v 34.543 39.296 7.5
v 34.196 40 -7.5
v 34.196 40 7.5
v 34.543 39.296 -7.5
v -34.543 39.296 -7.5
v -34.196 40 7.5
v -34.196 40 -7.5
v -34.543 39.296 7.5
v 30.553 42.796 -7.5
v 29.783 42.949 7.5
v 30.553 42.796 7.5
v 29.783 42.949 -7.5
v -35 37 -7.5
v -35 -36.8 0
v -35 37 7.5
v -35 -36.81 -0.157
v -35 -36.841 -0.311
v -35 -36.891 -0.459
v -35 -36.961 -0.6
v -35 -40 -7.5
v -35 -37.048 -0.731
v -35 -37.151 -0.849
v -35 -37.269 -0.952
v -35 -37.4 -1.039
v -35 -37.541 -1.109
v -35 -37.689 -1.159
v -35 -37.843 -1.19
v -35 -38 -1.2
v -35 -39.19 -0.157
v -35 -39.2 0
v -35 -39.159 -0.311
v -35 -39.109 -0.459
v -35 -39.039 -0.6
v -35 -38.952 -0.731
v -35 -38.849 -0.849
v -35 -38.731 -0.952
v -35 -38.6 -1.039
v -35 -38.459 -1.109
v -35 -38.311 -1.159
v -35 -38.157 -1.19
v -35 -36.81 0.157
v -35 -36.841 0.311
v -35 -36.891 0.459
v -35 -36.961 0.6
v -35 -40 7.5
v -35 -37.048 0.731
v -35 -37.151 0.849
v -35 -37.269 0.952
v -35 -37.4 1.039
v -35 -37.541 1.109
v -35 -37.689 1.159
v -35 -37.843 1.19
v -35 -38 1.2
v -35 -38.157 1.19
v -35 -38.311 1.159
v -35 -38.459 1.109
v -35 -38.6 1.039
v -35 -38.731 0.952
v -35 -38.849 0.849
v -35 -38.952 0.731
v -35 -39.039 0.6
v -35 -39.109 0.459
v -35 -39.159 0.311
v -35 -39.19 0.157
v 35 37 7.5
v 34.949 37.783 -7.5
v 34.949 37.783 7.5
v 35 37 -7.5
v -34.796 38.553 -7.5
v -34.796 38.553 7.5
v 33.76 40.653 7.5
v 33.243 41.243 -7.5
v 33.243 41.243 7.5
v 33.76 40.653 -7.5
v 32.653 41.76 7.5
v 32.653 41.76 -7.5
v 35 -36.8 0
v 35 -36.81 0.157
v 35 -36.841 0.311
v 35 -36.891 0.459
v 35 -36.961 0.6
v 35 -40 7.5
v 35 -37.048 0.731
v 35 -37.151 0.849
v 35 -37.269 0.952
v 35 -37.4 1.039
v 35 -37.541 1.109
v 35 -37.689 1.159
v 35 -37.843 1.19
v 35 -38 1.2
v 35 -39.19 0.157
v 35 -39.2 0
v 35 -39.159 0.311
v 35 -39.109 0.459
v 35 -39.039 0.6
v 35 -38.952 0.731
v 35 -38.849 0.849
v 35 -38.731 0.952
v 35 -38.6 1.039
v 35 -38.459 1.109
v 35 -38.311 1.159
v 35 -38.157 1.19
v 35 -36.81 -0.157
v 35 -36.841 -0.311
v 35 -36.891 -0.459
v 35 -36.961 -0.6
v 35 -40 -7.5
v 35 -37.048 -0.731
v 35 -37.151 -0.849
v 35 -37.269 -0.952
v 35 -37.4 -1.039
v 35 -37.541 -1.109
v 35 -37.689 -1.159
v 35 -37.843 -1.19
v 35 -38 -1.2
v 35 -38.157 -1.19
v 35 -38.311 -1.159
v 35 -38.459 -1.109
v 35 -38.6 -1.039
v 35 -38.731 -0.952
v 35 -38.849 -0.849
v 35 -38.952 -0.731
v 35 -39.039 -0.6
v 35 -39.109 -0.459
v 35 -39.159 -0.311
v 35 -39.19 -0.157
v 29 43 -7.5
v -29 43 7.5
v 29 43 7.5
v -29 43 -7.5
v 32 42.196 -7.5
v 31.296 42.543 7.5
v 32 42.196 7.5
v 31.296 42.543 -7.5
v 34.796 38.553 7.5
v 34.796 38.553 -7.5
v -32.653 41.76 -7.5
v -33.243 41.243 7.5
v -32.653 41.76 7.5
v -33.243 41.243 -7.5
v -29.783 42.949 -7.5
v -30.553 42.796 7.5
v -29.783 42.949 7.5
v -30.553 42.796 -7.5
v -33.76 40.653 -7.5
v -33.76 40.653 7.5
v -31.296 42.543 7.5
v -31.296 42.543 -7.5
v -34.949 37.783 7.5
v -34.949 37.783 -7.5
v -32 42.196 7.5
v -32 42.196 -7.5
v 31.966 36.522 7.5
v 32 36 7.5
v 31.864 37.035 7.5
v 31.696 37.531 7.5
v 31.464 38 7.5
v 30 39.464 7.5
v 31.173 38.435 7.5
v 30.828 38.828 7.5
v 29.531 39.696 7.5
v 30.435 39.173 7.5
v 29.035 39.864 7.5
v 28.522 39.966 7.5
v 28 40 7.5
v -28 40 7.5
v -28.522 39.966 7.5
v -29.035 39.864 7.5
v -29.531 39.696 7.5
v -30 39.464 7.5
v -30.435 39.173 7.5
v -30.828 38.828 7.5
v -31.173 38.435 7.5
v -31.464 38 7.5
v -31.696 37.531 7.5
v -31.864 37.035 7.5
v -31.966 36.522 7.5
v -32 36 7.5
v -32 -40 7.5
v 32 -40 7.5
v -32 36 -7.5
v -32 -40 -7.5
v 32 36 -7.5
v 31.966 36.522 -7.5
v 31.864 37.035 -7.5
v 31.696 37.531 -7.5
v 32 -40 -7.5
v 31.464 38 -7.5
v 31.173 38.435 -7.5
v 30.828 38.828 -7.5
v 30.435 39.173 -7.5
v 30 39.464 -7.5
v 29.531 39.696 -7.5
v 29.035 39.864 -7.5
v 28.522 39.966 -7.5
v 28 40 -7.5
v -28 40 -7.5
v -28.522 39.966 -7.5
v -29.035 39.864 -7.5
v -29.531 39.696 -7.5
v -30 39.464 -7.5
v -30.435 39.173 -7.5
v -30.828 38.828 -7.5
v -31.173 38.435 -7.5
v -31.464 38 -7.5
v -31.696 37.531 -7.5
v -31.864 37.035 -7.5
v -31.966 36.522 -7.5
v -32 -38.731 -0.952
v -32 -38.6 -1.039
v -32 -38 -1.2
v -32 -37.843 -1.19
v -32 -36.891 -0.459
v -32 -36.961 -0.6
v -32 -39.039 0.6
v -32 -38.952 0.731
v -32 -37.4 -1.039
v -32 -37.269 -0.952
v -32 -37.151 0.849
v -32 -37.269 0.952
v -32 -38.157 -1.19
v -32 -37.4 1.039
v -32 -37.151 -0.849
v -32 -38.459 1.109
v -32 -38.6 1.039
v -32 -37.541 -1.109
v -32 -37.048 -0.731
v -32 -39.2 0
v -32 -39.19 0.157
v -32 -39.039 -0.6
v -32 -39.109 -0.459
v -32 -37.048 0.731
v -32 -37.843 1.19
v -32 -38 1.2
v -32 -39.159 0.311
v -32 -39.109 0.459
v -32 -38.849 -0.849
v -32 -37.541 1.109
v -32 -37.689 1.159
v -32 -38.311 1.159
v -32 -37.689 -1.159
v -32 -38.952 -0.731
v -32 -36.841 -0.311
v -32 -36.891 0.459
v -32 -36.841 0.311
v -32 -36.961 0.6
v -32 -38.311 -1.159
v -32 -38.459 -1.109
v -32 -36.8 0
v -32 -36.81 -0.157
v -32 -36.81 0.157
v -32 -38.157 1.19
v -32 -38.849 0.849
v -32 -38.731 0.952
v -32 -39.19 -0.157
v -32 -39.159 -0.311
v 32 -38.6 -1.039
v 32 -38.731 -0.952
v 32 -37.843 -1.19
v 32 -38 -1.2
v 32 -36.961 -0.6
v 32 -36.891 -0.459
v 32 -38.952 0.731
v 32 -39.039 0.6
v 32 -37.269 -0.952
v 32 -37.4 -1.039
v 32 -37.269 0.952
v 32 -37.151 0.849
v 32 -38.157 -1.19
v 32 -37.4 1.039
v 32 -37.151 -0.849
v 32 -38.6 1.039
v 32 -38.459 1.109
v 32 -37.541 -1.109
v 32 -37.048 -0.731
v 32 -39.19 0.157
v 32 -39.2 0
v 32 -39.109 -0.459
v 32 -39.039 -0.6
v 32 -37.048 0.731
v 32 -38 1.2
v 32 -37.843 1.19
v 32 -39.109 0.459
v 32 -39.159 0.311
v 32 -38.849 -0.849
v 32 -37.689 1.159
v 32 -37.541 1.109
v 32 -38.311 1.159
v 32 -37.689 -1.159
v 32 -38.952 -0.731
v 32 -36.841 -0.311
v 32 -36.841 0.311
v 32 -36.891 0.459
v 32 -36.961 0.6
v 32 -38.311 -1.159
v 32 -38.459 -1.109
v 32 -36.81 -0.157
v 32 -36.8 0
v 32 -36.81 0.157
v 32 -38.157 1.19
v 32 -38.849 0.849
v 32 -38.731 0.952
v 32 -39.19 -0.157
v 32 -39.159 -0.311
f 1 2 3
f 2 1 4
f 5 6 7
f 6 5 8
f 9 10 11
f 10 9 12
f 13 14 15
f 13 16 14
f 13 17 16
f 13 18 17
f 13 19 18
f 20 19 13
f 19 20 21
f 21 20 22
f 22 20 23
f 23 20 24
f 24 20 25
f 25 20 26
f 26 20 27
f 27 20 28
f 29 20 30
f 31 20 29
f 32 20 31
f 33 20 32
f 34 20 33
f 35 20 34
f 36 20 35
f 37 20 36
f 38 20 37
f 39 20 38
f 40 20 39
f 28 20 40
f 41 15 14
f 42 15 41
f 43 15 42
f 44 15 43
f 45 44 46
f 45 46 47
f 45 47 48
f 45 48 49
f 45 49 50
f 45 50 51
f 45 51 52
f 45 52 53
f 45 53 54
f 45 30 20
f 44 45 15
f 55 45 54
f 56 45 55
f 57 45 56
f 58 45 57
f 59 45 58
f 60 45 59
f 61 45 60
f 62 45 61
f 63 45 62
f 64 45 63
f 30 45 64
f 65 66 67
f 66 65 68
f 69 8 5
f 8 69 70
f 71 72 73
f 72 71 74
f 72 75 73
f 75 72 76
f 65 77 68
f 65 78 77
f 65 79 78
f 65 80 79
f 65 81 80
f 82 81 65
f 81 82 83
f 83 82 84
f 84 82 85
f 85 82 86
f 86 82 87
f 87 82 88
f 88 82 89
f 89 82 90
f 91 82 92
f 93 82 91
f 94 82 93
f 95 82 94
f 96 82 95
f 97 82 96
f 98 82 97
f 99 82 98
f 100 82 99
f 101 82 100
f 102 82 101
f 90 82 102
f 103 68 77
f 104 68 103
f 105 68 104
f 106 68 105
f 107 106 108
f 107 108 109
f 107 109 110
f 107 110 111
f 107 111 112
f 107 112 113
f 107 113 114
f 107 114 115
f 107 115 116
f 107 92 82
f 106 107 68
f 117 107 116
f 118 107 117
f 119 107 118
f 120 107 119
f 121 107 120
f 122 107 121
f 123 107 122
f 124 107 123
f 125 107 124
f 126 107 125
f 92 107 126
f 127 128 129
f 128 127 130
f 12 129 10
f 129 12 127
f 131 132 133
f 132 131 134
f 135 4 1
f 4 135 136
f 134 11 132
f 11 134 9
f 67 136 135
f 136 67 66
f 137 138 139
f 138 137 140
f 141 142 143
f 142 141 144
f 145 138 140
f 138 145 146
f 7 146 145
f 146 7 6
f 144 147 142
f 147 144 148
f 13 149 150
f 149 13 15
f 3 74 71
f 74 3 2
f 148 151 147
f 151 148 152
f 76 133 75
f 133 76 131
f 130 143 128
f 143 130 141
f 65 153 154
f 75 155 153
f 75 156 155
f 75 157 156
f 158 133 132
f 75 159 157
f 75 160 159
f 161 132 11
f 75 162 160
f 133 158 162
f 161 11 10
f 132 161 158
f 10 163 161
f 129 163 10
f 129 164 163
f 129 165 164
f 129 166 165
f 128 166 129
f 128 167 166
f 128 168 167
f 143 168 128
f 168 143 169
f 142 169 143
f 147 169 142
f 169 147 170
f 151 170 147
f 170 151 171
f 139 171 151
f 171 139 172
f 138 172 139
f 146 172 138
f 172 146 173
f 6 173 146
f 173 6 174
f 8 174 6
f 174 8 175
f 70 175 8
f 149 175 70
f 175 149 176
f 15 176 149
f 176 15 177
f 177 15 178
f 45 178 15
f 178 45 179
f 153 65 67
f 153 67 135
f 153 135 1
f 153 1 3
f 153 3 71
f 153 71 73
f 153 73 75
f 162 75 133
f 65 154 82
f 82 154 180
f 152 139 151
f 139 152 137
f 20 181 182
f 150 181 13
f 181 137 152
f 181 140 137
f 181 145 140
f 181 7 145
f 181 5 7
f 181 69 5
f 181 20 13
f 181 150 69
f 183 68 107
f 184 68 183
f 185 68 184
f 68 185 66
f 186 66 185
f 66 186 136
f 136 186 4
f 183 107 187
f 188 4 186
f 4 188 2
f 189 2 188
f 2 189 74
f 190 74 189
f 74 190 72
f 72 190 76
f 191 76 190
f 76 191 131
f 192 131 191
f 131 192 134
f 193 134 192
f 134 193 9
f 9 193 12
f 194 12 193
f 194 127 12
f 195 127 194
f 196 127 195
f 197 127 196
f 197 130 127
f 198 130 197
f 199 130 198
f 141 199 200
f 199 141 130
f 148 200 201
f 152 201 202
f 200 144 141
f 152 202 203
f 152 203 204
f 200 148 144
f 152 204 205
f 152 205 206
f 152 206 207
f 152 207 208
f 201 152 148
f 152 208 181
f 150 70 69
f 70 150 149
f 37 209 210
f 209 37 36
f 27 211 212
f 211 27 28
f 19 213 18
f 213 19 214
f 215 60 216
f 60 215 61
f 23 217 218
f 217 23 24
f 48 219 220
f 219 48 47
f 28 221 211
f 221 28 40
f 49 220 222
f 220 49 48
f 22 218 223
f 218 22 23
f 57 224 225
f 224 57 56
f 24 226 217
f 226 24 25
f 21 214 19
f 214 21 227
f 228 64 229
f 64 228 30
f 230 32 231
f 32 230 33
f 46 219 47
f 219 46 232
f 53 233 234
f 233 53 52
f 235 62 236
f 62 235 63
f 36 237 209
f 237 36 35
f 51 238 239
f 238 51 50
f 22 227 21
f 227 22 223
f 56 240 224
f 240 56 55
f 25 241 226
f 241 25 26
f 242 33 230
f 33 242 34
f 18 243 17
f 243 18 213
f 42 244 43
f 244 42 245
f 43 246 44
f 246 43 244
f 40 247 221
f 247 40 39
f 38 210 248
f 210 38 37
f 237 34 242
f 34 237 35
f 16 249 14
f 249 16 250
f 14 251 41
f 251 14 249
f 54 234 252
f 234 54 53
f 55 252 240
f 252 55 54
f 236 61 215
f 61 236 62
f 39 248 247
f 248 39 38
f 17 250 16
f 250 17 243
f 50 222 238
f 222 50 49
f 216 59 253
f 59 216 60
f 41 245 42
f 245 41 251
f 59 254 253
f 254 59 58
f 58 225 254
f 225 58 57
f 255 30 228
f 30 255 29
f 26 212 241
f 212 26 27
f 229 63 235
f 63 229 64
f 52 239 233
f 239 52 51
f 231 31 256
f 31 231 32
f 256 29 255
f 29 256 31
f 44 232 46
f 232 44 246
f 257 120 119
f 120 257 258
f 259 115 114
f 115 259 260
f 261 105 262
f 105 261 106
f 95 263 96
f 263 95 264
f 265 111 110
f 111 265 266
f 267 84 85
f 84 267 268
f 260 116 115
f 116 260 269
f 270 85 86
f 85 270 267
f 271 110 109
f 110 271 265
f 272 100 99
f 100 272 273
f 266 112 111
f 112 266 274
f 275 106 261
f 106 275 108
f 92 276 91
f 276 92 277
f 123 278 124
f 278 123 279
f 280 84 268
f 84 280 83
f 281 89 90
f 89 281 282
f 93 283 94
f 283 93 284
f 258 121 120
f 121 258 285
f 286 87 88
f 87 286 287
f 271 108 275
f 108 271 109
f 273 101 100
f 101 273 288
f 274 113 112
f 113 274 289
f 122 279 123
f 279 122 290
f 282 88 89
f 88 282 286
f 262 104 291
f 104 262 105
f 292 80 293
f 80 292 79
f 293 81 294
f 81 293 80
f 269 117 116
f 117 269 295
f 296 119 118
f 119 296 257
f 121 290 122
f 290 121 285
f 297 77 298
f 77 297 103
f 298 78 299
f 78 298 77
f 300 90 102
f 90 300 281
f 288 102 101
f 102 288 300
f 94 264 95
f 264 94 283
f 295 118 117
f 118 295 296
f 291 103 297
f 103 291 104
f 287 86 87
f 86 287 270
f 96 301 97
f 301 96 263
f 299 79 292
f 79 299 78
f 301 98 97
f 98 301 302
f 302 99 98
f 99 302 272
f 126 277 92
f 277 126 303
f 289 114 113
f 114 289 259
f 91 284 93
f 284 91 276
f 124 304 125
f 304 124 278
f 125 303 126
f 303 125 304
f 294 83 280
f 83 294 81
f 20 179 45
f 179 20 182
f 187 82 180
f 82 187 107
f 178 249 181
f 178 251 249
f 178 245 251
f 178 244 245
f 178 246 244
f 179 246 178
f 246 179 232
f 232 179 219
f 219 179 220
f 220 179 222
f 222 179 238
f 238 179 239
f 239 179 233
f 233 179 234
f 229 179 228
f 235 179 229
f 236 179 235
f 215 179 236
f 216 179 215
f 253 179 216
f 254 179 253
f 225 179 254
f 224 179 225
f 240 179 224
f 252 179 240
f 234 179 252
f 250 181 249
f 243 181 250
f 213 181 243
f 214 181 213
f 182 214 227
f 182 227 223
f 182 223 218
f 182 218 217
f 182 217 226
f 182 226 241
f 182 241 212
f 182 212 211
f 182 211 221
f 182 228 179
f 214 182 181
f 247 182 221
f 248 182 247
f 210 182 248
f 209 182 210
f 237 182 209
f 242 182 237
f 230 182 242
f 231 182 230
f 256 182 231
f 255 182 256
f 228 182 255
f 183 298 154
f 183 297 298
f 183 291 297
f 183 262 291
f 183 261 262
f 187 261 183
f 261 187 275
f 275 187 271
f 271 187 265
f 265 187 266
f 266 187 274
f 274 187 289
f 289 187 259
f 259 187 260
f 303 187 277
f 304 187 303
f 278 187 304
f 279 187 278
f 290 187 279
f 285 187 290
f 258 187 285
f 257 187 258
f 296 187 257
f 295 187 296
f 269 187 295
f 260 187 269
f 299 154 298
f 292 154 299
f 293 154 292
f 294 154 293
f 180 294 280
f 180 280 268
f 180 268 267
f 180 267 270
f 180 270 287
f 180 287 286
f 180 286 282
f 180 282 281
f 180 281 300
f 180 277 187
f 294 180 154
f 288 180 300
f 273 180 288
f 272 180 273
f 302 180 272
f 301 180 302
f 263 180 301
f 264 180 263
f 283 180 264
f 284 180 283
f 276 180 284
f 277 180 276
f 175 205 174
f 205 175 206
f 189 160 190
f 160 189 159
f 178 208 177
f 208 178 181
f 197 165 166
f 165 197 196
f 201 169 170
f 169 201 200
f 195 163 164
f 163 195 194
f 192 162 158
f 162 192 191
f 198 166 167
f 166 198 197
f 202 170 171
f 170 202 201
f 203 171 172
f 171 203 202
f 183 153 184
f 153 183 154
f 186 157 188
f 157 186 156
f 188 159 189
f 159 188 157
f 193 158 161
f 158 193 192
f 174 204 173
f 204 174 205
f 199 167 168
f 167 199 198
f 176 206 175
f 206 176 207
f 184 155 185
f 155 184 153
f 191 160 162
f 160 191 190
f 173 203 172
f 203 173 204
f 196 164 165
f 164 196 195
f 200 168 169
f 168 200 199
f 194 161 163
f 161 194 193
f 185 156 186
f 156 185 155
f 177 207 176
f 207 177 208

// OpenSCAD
// Cradle for the Nerf gun to sit in (open-top tray)
// Export: F6 to render, then File > Export > Export as STL
// All dimensions in mm.

/* [Cavity] */
// Internal cavity the gun sits in
// Cavity 60 x 80 x 15 mm (outer = cavity + 2 x wall)
cavity_width  = 64.0;   // X
cavity_height = 15.0;   // Z
cavity_length = 80.0;   // Y

/* [Walls] */
wall_thickness = 3.0;
// No base: the cradle is open at both ends (set > 0 to add a floor)
base_thickness = 0.0;
// M2 screw clearance hole through each X-axis end wall (screw passes through)
end_m3_hole = 2.4;

/* [Corner radii] */
// Radius on the inside corners of the cavity
inner_corner_radius = 4.0;
// Radius on the outside corners of the cradle
outer_corner_radius = 6.0;

/* [Base fillet] */
// Fillet where the cavity floor meets the walls
floor_fillet = 3.0;

/* [Open side] */
// Completely open one of the short sides
open_short_side = true;
// Which short side: -1 = -X, +1 = +X
open_side = -1;

/* [Mounts] */
// Pipe sockets coming off each side that a 10 mm pipe slides into
mount_pipes    = false;
pipe_dia       = 10.0;  // pipe bore (slip fit)
socket_outer_dia = 16.0;
socket_length  = 15.0;  // how far the socket sticks out
// Socket height as a fraction of the wall (0 = bottom edge, 0.5 = centred)
socket_z_fraction = 0.5;
// Distance of the socket centre from the closed end, along Y
socket_y = 100.0;
// Grub screw hole through the socket wall (kept for reference; unused)
grub_dia = 3.0;
// Clamp hardware
clamp_slit   = 1.6;  // slit width
clamp_ear_h  = 6.0;  // how far the clamp ears stick out
clamp_ear_w  = 5.0;  // ear width each side of the slit
clamp_bolt_dia = 3.4; // M3 bolt clearance
clamp_nut_af   = 5.5; // M3 hex nut across flats

/* [Capsule opening] */
// Capsule slot through the closed short wall (centred in X)
capsule_length = 35.0;
capsule_width  = 10.0;
// Distance from the bottom edge to the start of the capsule
capsule_from_bottom = 13.0;

/* [Quality] */
$fn = 48;

outer_width  = cavity_width  + 2 * wall_thickness;
outer_length = cavity_length + 2 * wall_thickness;
outer_height = cavity_height + base_thickness;

module rounded_rect(width, length, radius) {
    offset(r = radius) square([width - 2 * radius, length - 2 * radius], center = true);
}

module pipe_socket() {
    // Plain slip-fit socket (no clamp or tightening holes)
    difference() {
        cylinder(d = socket_outer_dia, h = socket_length, center = true);
        cylinder(d = pipe_dia, h = socket_length + 2, center = true);
    }
}

module gun_cradle() {
    difference() {
        // Outer shell with rounded outside corners, squared off at the open end
        union() {
            linear_extrude(height = outer_height, center = true)
                rounded_rect(outer_width, outer_length, outer_corner_radius);
            if (open_short_side) {
                translate([0, open_side * (outer_length / 2 - outer_corner_radius / 2), 0])
                    linear_extrude(height = outer_height, center = true)
                        square([outer_width, outer_corner_radius], center = true);
            }
            // Pipe sockets coming off each side at the bottom
            if (mount_pipes) {
                for (x = [-1, 1]) {
                    translate([x * (outer_width / 2 + socket_length / 2 - 1),
                               -outer_length / 2 + socket_y,
                               -outer_height / 2 + socket_z_fraction * outer_height])
                        rotate([0, 90, 0])
                            pipe_socket();
                }
            }
        }

        // Cavity with rounded inside corners, open at the top
        translate([0, 0, base_thickness / 2 + 0.5])
            linear_extrude(height = cavity_height + 1, center = true)
                rounded_rect(cavity_width, cavity_length, inner_corner_radius);

        // Capsule opening disabled for this part (too short to fit)
        // M3 bolt holes through the X-axis end walls, 5 mm from the open end
        for (x = [-1, 1]) {
            translate([x * outer_width / 2, open_side * (outer_length / 2 - 5), 0])
                rotate([0, 90, 0])
                    cylinder(d = end_m3_hole, h = wall_thickness + 4, center = true);
        }
        // Remove one short side (±Y walls, the 60 mm-wide faces) entirely
        if (open_short_side) {
            translate([0, open_side * (cavity_length / 2 + wall_thickness / 2 + 0.5), 0])
                cube([outer_width + 2, wall_thickness + 1, outer_height + 2], center = true);
            // Square the inner cavity corners at the open end as well
            translate([0, open_side * (cavity_length / 2 - inner_corner_radius / 2), 0])
                linear_extrude(height = cavity_height + 2, center = true)
                    square([cavity_width, inner_corner_radius], center = true);
        }
    }
}

gun_cradle();
